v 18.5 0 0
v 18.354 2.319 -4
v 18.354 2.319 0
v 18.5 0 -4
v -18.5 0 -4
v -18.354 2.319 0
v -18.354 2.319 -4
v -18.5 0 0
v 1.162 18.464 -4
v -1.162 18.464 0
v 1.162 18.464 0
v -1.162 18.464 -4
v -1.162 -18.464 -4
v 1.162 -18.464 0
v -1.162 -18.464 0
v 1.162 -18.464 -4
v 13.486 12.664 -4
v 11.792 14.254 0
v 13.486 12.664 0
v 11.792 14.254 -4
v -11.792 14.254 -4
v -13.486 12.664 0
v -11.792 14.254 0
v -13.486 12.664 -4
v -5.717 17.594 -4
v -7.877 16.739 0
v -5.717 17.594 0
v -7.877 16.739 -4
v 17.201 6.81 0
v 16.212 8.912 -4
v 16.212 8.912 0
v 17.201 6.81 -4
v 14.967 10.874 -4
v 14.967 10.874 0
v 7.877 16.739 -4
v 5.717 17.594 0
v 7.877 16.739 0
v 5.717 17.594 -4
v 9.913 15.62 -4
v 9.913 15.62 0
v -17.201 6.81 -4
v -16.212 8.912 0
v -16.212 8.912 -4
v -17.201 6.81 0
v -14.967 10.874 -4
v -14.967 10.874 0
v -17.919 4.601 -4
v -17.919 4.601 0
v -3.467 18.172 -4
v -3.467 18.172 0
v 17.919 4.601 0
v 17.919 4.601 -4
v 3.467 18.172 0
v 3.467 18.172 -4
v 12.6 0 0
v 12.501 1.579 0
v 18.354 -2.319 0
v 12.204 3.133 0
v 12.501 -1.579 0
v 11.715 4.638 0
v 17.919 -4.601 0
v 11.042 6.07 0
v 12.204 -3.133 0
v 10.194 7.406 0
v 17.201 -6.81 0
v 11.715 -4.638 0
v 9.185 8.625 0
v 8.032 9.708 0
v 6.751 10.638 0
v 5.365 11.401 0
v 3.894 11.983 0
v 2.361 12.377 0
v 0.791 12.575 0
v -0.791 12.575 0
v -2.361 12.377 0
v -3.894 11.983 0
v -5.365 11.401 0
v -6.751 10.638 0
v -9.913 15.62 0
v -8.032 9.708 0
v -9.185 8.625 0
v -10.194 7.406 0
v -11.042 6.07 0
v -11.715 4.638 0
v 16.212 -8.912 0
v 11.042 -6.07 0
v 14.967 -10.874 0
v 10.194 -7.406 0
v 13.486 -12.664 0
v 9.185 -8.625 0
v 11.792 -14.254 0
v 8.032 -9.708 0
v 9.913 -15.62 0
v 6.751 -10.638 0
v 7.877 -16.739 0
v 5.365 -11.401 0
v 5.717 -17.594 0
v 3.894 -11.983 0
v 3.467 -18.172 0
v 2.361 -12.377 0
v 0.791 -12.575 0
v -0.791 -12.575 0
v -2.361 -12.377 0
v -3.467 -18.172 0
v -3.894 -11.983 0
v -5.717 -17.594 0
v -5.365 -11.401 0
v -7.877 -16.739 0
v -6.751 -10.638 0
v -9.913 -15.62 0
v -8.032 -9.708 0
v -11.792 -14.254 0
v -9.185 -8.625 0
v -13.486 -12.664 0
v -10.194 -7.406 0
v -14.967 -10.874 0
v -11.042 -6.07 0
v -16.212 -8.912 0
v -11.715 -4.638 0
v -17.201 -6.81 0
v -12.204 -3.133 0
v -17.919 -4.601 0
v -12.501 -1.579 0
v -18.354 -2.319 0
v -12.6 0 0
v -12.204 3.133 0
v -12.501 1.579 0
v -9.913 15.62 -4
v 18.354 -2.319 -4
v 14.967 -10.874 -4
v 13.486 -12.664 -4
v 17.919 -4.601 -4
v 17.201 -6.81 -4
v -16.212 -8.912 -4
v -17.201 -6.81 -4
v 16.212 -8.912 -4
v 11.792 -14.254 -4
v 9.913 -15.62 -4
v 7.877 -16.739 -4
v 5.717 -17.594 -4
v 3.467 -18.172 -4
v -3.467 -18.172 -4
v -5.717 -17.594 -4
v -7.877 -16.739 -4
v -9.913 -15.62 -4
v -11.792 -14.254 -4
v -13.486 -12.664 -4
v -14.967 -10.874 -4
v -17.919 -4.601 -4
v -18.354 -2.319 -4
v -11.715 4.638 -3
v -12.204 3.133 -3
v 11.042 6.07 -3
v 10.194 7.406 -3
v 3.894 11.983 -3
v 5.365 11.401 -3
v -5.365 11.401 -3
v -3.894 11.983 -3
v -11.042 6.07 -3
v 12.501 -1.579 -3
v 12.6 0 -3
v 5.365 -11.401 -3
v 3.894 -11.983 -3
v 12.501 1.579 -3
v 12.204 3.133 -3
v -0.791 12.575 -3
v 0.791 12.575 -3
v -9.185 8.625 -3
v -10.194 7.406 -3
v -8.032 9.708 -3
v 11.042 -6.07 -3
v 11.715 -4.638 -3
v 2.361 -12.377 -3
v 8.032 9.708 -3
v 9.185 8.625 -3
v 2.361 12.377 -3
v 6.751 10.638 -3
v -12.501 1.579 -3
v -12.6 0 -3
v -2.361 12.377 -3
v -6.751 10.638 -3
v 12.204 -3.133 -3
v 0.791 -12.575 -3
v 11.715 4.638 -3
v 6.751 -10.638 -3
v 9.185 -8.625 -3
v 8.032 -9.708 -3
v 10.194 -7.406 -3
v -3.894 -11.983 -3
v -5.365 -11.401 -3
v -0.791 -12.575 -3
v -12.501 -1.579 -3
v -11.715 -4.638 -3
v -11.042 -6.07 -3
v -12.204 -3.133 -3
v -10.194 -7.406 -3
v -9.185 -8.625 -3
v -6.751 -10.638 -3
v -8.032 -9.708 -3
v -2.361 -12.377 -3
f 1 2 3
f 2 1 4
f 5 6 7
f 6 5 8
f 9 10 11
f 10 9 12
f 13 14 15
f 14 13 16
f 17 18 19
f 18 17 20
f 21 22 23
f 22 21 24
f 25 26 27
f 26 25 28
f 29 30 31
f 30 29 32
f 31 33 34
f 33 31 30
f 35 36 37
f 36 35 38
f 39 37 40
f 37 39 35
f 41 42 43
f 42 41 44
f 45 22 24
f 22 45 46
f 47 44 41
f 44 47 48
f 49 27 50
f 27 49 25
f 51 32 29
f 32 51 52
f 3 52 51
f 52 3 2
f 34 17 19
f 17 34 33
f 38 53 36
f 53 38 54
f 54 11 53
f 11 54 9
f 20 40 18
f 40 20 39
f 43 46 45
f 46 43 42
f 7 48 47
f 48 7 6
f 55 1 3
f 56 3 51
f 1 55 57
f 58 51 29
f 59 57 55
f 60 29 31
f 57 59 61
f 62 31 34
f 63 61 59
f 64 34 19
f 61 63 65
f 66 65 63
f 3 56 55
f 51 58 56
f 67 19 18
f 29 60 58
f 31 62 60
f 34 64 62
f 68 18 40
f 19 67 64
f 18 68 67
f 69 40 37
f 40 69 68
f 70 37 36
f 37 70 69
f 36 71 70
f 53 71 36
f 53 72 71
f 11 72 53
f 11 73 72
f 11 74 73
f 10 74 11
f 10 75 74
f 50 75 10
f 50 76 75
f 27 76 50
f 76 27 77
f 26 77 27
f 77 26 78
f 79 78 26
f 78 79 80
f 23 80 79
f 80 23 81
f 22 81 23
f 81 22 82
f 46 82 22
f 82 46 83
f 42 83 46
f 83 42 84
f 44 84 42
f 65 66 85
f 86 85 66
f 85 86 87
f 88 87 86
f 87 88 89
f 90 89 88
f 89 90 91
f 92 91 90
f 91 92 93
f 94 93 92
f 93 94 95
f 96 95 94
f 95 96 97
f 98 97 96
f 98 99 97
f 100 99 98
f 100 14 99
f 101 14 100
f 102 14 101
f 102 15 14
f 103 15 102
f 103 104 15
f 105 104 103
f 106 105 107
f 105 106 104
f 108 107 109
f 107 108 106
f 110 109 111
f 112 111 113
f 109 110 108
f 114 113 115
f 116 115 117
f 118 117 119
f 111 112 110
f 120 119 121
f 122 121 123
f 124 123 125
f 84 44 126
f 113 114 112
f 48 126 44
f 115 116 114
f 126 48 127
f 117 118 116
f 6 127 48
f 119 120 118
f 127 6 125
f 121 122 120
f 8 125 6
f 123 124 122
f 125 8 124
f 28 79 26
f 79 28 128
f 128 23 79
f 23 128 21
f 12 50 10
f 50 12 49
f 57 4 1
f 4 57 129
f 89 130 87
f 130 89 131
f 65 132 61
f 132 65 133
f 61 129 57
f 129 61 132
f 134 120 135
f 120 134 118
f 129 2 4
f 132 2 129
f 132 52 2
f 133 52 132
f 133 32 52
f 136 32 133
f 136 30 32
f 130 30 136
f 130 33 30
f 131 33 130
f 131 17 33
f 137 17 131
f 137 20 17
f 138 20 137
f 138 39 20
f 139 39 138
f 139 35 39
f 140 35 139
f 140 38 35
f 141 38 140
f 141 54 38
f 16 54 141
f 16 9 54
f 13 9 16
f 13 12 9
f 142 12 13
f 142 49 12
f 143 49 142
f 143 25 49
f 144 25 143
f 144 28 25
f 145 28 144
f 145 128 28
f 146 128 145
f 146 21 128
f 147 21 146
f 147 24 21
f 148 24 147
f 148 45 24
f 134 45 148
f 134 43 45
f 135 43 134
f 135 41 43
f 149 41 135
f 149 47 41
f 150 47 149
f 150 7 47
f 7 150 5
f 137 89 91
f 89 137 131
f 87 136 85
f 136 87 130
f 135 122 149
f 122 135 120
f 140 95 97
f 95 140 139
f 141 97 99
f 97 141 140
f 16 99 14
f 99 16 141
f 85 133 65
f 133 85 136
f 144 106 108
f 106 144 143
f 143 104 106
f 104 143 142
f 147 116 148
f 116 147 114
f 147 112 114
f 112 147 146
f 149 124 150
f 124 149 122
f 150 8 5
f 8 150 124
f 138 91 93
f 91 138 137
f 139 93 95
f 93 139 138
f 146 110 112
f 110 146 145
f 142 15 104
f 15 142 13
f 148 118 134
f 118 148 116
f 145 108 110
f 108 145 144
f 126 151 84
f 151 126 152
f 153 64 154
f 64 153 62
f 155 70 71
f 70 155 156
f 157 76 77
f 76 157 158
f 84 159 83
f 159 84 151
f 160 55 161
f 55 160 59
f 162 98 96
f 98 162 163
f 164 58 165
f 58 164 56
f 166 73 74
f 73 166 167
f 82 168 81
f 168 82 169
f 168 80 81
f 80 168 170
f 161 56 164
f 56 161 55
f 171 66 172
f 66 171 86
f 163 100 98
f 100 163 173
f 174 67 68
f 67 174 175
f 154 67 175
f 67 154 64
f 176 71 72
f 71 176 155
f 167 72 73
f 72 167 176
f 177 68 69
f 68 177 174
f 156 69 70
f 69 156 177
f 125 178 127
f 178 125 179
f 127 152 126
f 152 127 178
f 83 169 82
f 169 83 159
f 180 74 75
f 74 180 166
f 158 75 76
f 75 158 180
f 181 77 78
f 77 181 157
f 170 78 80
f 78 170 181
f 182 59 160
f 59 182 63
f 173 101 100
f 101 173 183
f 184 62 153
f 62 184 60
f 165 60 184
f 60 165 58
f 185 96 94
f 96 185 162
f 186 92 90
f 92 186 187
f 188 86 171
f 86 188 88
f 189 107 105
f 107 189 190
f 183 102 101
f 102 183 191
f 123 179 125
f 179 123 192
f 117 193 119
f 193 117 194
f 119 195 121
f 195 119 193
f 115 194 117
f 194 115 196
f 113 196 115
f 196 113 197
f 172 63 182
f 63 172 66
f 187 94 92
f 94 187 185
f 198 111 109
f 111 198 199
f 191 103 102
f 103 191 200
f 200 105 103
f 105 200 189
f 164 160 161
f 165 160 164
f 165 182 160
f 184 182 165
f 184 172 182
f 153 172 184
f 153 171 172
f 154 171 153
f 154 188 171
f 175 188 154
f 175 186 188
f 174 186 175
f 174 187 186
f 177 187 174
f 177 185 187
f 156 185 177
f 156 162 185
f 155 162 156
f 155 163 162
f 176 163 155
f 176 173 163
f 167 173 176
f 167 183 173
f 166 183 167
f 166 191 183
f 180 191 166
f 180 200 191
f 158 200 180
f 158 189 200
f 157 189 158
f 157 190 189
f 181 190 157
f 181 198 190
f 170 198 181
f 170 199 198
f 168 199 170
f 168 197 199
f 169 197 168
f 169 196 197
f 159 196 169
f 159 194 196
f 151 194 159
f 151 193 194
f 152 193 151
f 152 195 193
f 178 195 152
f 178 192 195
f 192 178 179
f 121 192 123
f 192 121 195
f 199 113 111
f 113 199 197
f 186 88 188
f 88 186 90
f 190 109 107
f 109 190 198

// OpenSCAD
$fn = 50;


difference() {
	union() {
		translate(v = [0, 0, -4.0000000000]) {
			cylinder(h = 4, r = 18.5000000000);
		}
	}
	union() {
		#translate(v = [0, 0, -3.0000000000]) {
			cylinder(h = 3, r = 12.6000000000);
		}
	}
}
